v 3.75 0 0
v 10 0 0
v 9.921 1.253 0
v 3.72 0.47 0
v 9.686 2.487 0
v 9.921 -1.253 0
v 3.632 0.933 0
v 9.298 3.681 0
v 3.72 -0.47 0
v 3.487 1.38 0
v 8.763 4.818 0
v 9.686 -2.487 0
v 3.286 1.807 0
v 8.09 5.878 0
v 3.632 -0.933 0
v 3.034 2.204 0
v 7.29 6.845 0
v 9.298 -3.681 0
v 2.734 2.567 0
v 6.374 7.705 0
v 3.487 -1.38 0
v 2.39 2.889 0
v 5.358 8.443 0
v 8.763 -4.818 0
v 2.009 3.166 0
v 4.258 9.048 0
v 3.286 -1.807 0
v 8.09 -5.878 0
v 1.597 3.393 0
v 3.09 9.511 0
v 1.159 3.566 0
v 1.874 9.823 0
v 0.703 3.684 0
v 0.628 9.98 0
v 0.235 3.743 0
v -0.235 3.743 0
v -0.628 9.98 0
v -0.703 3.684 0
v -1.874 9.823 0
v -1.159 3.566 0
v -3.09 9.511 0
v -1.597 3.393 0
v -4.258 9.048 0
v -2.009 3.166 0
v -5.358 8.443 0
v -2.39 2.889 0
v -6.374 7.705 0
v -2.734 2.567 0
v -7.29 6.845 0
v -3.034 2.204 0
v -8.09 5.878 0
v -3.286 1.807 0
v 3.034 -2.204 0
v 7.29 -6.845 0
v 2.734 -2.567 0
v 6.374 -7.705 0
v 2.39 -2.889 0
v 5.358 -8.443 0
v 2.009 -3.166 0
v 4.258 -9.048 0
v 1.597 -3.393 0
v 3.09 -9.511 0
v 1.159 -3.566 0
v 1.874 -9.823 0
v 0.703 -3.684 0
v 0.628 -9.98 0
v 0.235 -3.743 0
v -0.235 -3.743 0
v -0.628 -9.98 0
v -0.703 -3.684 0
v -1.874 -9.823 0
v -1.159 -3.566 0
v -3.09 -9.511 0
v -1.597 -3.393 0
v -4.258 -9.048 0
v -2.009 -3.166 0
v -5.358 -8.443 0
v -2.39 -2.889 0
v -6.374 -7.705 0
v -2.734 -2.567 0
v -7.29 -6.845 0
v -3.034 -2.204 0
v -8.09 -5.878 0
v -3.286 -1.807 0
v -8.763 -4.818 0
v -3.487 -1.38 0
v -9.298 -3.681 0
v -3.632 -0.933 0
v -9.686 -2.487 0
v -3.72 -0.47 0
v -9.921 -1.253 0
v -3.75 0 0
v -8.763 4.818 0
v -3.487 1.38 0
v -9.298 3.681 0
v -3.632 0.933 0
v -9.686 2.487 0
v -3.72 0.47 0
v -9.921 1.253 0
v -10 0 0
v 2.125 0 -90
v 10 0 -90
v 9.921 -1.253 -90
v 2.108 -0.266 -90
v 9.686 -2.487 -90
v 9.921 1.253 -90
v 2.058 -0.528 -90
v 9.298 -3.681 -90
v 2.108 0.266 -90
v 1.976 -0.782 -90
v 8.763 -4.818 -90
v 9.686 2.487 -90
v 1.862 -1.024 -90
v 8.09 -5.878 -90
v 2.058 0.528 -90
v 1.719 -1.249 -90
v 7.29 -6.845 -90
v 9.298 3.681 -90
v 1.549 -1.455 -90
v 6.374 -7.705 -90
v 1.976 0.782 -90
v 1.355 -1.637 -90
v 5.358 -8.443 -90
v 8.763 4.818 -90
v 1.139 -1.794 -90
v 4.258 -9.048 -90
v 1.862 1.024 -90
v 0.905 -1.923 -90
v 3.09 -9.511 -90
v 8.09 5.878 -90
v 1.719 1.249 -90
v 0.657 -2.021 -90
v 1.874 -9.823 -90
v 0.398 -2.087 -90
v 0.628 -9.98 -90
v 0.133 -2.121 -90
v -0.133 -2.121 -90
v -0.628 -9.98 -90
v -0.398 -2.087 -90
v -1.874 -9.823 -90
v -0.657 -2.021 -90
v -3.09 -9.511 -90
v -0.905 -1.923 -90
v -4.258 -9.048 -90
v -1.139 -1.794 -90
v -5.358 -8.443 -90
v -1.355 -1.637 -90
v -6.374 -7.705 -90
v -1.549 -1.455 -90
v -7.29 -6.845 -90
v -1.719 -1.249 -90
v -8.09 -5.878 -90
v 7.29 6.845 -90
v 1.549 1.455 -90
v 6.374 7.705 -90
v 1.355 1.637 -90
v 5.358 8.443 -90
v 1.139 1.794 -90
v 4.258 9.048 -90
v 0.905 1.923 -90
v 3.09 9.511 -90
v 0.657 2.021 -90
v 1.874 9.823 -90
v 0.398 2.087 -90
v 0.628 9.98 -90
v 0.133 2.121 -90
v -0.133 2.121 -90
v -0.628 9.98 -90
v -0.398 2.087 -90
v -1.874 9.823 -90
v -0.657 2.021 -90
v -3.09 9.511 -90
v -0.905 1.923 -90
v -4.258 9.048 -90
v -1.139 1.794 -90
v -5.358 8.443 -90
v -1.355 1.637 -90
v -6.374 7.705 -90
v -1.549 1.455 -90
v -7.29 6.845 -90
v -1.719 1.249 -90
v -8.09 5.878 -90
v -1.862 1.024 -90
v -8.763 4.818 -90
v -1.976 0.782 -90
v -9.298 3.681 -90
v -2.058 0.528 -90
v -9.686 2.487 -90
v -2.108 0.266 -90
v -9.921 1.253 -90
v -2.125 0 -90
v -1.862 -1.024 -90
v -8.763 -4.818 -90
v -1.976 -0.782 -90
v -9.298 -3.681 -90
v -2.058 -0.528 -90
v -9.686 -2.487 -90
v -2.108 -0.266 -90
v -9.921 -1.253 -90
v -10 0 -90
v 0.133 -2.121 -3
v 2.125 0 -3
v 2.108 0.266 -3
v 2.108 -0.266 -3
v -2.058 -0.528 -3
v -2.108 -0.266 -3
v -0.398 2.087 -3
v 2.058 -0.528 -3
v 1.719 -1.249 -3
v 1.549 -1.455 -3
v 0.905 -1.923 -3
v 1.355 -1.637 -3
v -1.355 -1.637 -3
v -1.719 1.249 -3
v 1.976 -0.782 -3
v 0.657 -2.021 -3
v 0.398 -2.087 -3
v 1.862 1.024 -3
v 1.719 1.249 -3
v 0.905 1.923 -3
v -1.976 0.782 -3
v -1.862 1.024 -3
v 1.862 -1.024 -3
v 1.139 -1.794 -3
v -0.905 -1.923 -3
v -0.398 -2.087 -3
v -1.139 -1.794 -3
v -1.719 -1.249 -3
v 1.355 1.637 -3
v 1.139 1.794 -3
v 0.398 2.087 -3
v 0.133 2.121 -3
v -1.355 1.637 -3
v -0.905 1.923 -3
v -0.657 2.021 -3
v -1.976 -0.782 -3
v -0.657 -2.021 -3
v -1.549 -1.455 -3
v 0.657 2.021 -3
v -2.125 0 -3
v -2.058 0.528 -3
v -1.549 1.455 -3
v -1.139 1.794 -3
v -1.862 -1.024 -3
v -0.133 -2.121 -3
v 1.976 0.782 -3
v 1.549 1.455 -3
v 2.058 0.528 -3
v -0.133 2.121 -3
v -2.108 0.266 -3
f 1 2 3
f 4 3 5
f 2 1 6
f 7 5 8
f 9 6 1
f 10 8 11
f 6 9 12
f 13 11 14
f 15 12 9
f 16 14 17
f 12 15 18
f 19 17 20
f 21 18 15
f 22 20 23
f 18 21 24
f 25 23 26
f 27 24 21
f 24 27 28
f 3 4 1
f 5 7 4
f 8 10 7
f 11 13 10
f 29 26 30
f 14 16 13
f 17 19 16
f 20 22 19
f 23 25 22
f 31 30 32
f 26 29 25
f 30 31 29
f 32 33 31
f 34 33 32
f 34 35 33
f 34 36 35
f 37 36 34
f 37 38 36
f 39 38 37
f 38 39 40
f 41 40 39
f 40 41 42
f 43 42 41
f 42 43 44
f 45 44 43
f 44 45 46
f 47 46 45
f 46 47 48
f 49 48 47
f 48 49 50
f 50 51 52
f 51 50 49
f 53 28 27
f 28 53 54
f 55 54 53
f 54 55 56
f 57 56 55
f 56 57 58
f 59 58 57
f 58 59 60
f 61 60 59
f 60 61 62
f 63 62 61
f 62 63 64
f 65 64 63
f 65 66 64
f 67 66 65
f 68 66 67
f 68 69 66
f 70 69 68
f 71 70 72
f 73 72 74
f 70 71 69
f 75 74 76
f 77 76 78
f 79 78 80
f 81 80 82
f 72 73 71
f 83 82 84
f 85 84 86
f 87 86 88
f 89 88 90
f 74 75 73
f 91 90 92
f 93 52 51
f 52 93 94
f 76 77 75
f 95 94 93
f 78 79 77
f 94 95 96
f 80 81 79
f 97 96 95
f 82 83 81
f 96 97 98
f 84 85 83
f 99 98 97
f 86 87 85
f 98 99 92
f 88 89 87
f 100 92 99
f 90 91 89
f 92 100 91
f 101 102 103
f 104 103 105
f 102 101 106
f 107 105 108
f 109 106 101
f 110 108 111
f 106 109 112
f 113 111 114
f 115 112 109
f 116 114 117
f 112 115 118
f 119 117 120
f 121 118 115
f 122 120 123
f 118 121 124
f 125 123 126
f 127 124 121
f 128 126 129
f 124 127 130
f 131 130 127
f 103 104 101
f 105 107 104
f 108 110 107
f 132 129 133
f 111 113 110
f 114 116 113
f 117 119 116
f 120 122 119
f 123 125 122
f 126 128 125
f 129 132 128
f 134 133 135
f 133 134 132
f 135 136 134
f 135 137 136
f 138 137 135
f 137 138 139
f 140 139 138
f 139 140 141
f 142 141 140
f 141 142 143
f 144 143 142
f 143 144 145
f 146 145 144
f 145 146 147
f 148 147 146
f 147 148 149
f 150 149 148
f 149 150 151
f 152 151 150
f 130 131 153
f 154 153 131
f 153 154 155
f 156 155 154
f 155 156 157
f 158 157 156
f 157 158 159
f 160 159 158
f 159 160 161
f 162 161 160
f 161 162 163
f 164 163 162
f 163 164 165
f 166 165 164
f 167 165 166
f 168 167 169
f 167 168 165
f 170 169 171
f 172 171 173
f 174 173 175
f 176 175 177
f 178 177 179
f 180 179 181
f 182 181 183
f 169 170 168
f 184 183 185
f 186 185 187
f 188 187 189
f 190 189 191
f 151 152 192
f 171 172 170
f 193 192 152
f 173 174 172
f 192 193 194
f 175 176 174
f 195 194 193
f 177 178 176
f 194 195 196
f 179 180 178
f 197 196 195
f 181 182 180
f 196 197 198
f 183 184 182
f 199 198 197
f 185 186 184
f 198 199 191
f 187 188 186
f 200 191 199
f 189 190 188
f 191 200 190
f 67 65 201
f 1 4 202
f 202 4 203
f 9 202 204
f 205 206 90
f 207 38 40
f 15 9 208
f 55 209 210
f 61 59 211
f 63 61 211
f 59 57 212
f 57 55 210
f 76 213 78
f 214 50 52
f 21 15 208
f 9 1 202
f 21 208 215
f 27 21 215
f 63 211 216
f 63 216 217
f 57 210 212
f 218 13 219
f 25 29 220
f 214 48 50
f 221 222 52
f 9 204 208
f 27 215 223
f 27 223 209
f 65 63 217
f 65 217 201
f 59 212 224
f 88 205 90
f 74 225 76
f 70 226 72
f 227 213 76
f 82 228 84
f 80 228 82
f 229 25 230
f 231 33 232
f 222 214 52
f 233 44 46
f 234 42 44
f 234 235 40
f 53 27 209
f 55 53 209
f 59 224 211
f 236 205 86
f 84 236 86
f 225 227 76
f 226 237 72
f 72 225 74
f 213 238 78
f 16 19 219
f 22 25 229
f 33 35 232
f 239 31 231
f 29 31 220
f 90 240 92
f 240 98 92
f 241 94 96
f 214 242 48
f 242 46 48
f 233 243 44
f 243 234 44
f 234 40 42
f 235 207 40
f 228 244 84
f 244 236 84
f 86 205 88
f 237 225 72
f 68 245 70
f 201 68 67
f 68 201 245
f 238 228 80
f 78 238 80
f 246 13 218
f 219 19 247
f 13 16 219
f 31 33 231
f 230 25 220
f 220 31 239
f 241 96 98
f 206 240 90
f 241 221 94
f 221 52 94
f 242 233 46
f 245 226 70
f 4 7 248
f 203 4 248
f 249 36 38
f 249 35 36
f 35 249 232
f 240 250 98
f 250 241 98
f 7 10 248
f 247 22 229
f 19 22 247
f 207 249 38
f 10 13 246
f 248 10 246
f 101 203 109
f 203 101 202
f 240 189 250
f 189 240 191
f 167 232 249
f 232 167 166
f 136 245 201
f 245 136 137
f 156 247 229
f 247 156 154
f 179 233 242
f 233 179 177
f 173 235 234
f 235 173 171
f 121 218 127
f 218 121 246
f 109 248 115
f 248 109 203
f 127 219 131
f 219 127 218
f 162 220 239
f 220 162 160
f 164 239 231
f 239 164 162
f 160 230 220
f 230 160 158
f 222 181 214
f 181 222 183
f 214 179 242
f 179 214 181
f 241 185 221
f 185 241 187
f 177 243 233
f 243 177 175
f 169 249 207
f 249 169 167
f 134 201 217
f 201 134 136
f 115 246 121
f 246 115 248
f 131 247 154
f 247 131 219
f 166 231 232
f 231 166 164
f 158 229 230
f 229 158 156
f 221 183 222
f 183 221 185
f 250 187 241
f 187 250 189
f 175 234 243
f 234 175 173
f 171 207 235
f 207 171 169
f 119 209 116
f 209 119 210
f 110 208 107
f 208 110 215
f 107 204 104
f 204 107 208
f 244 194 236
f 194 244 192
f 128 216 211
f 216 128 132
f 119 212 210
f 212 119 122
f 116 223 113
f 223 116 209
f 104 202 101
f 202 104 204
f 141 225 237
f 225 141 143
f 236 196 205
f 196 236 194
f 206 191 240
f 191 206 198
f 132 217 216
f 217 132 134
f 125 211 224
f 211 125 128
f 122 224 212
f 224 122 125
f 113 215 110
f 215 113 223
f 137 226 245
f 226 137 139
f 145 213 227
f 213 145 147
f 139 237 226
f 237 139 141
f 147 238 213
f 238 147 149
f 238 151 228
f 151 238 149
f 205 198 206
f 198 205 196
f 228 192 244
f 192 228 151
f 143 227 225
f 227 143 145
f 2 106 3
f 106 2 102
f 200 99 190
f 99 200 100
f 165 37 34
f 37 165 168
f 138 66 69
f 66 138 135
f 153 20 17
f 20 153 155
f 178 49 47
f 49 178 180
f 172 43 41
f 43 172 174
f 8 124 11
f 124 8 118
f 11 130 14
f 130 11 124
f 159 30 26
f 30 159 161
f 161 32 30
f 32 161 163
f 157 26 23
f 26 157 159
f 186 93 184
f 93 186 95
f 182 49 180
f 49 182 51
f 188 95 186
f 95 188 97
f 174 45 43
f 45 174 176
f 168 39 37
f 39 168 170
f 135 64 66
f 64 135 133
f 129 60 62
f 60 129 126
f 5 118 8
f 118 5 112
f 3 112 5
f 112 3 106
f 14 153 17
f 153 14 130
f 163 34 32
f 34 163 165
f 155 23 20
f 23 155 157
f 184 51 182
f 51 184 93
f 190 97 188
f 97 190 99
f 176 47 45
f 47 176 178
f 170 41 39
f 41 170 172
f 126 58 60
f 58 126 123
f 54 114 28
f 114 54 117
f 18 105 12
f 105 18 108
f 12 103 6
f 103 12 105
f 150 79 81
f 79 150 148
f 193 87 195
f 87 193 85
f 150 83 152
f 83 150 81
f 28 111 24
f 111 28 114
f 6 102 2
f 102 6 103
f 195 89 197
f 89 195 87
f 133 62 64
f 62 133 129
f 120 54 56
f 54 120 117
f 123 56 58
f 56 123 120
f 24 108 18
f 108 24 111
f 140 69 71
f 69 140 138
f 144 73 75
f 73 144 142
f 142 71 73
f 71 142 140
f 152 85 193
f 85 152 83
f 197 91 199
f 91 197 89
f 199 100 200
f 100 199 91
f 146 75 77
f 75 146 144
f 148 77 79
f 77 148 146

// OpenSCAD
$fn = 50;


difference() {
	union() {
		translate(v = [0, 0, -90.0000000000]) {
			cylinder(h = 90, r = 10.0000000000);
		}
		cylinder(h = 0, r = 13.0000000000);
	}
	union() {
		translate(v = [0, 0, 0]) {
			rotate(a = [0, 0, 0]) {
				difference() {
					union() {
						#translate(v = [0, 0, -90.0000000000]) {
							cylinder(h = 90, r = 2.0000000000);
						}
						#translate(v = [0, 0, -3]) {
							cylinder(h = 3, r1 = 2.1250000000, r2 = 3.7500000000);
						}
						#translate(v = [0, 0, -90.0000000000]) {
							cylinder(h = 90, r = 2.1250000000);
						}
						#translate(v = [0, 0, -90.0000000000]) {
							cylinder(h = 90, r = 2.0000000000);
						}
					}
					union();
				}
			}
		}
	}
}
